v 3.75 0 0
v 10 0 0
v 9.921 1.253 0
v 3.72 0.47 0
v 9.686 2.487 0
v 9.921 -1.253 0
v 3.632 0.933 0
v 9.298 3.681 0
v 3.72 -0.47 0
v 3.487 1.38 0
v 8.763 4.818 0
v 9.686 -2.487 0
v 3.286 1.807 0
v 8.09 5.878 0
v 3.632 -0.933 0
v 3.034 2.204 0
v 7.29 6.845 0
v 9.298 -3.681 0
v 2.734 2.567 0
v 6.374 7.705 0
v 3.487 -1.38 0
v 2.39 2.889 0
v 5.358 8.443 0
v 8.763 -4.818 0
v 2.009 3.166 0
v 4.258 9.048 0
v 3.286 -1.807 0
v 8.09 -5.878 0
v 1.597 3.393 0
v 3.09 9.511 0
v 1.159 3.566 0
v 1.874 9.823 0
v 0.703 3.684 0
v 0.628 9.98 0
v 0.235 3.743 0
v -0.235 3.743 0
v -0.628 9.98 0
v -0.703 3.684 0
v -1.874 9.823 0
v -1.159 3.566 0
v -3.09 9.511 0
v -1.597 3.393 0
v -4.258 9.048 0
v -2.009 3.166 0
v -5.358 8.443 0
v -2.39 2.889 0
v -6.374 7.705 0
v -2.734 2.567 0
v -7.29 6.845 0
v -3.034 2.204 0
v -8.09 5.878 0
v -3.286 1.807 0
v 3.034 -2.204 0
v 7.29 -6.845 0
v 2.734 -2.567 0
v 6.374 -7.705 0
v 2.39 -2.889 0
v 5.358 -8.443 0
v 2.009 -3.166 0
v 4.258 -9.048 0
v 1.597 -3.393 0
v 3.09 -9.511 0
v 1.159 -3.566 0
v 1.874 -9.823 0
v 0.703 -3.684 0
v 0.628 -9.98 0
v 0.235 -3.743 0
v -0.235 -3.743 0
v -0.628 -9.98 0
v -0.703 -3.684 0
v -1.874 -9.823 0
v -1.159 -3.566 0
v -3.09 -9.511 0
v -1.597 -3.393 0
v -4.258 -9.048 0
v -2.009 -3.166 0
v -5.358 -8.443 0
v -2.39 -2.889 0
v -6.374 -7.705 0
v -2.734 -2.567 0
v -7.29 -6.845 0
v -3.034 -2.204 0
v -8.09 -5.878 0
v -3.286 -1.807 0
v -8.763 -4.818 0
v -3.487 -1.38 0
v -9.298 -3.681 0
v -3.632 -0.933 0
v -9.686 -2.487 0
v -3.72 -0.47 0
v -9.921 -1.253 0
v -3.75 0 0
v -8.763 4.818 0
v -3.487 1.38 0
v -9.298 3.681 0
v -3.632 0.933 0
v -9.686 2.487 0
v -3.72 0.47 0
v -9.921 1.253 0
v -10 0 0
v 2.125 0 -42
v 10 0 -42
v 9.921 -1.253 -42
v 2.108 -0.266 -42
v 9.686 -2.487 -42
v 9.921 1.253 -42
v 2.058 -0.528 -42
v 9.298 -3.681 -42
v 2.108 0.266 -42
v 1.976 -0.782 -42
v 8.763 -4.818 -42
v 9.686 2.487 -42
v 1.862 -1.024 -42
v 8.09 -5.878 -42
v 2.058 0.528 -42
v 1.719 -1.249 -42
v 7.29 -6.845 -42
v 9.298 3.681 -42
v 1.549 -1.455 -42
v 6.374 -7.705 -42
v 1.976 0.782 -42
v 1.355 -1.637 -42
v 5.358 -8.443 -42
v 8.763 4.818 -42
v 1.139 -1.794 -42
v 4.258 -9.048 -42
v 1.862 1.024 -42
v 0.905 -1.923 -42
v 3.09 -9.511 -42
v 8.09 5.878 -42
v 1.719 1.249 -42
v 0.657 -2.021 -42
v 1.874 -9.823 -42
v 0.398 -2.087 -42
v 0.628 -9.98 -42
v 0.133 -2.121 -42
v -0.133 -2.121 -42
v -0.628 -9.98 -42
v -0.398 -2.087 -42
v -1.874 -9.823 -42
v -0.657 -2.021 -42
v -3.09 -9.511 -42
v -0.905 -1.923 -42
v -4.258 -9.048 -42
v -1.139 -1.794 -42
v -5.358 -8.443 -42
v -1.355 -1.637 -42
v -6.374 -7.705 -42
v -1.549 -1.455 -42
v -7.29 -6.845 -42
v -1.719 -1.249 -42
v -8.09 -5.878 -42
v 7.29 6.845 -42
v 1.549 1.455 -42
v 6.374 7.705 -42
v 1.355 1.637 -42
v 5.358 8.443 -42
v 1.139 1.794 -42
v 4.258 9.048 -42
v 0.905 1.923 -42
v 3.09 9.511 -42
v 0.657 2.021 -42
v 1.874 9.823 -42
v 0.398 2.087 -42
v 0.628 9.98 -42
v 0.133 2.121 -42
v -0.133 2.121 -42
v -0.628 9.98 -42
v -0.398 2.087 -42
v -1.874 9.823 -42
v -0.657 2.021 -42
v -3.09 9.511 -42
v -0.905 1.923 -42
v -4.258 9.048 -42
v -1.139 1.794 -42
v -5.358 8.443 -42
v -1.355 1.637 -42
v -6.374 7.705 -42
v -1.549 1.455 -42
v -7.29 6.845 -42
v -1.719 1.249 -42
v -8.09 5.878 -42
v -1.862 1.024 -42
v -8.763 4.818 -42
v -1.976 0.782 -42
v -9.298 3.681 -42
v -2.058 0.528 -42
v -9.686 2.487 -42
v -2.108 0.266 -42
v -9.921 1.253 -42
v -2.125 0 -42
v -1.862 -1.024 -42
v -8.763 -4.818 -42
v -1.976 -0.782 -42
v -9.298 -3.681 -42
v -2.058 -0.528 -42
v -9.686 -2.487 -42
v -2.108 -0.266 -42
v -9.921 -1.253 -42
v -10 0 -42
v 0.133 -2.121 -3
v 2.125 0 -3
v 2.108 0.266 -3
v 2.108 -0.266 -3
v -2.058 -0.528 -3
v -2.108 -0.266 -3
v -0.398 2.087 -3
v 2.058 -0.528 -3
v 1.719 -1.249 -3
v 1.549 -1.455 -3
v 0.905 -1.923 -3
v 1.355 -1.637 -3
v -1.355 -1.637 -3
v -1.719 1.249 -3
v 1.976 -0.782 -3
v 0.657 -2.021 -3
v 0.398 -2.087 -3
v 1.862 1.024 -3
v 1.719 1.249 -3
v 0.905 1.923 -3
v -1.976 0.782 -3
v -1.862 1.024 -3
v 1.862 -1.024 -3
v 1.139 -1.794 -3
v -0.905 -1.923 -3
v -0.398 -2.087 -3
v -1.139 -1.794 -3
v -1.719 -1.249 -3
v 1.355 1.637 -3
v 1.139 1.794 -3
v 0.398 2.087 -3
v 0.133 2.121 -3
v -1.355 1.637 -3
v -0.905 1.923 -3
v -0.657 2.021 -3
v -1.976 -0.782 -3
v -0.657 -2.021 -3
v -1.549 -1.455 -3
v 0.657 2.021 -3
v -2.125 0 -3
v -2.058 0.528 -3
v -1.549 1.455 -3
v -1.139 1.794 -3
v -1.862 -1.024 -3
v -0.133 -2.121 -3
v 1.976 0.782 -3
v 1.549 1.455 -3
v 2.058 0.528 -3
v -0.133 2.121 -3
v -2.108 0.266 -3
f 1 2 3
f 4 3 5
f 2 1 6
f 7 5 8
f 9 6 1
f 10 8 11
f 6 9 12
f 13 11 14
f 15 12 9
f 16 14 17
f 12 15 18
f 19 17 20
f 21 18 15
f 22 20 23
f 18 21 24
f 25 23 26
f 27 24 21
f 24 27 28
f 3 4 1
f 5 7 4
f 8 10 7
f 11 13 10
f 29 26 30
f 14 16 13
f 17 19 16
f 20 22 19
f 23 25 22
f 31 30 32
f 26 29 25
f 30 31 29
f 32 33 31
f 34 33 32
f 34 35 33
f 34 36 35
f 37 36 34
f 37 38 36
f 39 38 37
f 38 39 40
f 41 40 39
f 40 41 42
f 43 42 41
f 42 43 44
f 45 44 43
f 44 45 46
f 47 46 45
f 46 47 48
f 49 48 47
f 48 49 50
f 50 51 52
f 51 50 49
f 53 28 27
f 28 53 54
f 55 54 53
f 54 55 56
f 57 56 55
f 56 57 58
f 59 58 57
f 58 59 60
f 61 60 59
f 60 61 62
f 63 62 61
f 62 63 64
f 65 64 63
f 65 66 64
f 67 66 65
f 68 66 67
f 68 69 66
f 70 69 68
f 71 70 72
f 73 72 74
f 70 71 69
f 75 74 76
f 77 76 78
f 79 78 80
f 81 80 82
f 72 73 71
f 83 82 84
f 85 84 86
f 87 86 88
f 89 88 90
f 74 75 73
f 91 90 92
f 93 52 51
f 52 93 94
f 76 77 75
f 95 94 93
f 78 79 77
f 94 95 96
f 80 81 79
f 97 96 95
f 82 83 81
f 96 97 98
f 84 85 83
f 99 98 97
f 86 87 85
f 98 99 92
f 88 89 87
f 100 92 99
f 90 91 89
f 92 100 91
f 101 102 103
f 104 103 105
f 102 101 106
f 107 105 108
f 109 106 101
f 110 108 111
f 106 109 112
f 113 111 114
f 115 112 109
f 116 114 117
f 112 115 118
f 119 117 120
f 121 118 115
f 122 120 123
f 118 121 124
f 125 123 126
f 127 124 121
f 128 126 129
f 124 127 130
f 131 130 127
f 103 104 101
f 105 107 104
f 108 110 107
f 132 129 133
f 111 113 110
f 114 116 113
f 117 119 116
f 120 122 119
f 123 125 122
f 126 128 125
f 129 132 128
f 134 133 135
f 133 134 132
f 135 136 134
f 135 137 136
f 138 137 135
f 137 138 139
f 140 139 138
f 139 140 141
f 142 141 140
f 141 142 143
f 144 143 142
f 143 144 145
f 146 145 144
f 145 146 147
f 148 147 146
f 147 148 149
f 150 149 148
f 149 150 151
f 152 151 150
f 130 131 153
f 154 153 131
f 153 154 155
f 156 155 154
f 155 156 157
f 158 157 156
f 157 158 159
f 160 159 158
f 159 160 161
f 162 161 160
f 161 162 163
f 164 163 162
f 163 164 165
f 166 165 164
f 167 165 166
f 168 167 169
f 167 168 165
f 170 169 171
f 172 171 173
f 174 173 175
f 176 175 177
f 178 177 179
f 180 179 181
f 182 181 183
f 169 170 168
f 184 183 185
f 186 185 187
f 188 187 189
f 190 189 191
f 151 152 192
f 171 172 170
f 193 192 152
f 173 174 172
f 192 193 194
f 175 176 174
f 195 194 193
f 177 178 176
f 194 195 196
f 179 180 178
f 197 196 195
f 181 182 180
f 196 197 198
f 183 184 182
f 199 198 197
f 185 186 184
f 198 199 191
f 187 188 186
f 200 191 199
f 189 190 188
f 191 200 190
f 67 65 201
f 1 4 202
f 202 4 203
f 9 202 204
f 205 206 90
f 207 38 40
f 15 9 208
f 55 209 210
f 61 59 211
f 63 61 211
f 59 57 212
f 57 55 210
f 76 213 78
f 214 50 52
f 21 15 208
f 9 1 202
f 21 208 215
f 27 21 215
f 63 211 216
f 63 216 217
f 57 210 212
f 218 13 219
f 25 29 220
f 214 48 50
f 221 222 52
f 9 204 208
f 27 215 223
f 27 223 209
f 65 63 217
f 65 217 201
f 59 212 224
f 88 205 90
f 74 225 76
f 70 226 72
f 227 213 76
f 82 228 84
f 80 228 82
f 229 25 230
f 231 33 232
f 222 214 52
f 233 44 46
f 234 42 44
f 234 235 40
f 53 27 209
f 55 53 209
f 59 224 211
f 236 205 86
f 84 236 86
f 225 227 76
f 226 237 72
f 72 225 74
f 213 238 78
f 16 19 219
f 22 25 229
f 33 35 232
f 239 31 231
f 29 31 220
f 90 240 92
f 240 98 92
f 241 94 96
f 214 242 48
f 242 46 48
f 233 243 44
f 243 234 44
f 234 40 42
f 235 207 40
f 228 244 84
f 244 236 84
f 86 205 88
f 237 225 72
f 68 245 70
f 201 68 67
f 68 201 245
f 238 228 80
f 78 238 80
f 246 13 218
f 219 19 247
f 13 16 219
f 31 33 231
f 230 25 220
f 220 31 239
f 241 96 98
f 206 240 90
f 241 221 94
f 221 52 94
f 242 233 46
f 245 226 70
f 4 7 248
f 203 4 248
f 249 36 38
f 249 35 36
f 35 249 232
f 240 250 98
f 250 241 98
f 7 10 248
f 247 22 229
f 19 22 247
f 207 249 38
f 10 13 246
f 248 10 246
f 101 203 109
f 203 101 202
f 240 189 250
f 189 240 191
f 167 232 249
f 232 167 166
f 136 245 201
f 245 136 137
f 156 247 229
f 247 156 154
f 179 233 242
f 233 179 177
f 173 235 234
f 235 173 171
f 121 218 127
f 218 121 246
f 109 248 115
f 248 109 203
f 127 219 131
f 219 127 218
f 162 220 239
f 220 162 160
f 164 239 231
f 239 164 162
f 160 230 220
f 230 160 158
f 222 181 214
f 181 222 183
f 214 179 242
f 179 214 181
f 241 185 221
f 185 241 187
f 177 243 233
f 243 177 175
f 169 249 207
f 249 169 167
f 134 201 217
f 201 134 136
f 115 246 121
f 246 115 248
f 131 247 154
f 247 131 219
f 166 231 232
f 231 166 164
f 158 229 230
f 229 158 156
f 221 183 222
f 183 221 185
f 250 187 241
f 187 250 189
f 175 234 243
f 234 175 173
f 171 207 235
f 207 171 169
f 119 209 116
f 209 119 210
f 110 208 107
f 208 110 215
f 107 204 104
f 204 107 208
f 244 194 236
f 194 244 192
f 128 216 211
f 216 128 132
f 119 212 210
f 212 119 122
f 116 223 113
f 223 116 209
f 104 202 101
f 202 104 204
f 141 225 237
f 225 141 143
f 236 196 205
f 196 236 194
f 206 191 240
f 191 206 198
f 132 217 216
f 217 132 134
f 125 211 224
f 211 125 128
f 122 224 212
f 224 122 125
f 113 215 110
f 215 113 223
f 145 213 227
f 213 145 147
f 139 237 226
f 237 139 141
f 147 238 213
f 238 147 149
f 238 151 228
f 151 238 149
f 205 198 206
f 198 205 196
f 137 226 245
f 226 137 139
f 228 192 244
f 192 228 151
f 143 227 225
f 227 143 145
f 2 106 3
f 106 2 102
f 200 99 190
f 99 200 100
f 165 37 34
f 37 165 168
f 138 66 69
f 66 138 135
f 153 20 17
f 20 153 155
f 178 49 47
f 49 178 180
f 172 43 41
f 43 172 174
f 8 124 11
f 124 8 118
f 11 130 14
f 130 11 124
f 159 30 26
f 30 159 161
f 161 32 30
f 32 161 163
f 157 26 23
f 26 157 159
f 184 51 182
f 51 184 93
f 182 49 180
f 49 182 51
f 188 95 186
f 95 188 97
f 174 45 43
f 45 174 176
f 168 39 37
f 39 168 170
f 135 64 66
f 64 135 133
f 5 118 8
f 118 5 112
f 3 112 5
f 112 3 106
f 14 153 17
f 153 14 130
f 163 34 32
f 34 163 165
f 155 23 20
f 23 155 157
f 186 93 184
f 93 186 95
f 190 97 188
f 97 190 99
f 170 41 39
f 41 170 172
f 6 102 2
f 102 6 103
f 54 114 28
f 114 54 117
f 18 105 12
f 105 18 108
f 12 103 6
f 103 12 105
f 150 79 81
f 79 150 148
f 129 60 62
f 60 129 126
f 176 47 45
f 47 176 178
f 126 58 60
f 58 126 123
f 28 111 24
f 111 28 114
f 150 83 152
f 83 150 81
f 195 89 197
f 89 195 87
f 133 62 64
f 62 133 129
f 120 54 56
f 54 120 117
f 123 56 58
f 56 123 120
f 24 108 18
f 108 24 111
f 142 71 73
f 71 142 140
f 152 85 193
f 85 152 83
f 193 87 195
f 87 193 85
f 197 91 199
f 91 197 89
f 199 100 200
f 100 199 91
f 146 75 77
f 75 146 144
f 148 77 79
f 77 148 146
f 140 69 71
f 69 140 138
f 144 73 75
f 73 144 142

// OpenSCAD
$fn = 50;


difference() {
	union() {
		translate(v = [0, 0, -42.0000000000]) {
			cylinder(h = 42, r = 10.0000000000);
		}
		cylinder(h = 0, r = 13.0000000000);
	}
	union() {
		translate(v = [0, 0, 0]) {
			rotate(a = [0, 0, 0]) {
				difference() {
					union() {
						#translate(v = [0, 0, -42.0000000000]) {
							cylinder(h = 42, r = 2.0000000000);
						}
						#translate(v = [0, 0, -3]) {
							cylinder(h = 3, r = 10.0000000000, r1 = 2.1250000000, r2 = 3.7500000000);
						}
						#translate(v = [0, 0, -42.0000000000]) {
							cylinder(h = 42, r = 2.1250000000);
						}
						#translate(v = [0, 0, -42.0000000000]) {
							cylinder(h = 42, r = 2.0000000000);
						}
					}
					union();
				}
			}
		}
	}
}
